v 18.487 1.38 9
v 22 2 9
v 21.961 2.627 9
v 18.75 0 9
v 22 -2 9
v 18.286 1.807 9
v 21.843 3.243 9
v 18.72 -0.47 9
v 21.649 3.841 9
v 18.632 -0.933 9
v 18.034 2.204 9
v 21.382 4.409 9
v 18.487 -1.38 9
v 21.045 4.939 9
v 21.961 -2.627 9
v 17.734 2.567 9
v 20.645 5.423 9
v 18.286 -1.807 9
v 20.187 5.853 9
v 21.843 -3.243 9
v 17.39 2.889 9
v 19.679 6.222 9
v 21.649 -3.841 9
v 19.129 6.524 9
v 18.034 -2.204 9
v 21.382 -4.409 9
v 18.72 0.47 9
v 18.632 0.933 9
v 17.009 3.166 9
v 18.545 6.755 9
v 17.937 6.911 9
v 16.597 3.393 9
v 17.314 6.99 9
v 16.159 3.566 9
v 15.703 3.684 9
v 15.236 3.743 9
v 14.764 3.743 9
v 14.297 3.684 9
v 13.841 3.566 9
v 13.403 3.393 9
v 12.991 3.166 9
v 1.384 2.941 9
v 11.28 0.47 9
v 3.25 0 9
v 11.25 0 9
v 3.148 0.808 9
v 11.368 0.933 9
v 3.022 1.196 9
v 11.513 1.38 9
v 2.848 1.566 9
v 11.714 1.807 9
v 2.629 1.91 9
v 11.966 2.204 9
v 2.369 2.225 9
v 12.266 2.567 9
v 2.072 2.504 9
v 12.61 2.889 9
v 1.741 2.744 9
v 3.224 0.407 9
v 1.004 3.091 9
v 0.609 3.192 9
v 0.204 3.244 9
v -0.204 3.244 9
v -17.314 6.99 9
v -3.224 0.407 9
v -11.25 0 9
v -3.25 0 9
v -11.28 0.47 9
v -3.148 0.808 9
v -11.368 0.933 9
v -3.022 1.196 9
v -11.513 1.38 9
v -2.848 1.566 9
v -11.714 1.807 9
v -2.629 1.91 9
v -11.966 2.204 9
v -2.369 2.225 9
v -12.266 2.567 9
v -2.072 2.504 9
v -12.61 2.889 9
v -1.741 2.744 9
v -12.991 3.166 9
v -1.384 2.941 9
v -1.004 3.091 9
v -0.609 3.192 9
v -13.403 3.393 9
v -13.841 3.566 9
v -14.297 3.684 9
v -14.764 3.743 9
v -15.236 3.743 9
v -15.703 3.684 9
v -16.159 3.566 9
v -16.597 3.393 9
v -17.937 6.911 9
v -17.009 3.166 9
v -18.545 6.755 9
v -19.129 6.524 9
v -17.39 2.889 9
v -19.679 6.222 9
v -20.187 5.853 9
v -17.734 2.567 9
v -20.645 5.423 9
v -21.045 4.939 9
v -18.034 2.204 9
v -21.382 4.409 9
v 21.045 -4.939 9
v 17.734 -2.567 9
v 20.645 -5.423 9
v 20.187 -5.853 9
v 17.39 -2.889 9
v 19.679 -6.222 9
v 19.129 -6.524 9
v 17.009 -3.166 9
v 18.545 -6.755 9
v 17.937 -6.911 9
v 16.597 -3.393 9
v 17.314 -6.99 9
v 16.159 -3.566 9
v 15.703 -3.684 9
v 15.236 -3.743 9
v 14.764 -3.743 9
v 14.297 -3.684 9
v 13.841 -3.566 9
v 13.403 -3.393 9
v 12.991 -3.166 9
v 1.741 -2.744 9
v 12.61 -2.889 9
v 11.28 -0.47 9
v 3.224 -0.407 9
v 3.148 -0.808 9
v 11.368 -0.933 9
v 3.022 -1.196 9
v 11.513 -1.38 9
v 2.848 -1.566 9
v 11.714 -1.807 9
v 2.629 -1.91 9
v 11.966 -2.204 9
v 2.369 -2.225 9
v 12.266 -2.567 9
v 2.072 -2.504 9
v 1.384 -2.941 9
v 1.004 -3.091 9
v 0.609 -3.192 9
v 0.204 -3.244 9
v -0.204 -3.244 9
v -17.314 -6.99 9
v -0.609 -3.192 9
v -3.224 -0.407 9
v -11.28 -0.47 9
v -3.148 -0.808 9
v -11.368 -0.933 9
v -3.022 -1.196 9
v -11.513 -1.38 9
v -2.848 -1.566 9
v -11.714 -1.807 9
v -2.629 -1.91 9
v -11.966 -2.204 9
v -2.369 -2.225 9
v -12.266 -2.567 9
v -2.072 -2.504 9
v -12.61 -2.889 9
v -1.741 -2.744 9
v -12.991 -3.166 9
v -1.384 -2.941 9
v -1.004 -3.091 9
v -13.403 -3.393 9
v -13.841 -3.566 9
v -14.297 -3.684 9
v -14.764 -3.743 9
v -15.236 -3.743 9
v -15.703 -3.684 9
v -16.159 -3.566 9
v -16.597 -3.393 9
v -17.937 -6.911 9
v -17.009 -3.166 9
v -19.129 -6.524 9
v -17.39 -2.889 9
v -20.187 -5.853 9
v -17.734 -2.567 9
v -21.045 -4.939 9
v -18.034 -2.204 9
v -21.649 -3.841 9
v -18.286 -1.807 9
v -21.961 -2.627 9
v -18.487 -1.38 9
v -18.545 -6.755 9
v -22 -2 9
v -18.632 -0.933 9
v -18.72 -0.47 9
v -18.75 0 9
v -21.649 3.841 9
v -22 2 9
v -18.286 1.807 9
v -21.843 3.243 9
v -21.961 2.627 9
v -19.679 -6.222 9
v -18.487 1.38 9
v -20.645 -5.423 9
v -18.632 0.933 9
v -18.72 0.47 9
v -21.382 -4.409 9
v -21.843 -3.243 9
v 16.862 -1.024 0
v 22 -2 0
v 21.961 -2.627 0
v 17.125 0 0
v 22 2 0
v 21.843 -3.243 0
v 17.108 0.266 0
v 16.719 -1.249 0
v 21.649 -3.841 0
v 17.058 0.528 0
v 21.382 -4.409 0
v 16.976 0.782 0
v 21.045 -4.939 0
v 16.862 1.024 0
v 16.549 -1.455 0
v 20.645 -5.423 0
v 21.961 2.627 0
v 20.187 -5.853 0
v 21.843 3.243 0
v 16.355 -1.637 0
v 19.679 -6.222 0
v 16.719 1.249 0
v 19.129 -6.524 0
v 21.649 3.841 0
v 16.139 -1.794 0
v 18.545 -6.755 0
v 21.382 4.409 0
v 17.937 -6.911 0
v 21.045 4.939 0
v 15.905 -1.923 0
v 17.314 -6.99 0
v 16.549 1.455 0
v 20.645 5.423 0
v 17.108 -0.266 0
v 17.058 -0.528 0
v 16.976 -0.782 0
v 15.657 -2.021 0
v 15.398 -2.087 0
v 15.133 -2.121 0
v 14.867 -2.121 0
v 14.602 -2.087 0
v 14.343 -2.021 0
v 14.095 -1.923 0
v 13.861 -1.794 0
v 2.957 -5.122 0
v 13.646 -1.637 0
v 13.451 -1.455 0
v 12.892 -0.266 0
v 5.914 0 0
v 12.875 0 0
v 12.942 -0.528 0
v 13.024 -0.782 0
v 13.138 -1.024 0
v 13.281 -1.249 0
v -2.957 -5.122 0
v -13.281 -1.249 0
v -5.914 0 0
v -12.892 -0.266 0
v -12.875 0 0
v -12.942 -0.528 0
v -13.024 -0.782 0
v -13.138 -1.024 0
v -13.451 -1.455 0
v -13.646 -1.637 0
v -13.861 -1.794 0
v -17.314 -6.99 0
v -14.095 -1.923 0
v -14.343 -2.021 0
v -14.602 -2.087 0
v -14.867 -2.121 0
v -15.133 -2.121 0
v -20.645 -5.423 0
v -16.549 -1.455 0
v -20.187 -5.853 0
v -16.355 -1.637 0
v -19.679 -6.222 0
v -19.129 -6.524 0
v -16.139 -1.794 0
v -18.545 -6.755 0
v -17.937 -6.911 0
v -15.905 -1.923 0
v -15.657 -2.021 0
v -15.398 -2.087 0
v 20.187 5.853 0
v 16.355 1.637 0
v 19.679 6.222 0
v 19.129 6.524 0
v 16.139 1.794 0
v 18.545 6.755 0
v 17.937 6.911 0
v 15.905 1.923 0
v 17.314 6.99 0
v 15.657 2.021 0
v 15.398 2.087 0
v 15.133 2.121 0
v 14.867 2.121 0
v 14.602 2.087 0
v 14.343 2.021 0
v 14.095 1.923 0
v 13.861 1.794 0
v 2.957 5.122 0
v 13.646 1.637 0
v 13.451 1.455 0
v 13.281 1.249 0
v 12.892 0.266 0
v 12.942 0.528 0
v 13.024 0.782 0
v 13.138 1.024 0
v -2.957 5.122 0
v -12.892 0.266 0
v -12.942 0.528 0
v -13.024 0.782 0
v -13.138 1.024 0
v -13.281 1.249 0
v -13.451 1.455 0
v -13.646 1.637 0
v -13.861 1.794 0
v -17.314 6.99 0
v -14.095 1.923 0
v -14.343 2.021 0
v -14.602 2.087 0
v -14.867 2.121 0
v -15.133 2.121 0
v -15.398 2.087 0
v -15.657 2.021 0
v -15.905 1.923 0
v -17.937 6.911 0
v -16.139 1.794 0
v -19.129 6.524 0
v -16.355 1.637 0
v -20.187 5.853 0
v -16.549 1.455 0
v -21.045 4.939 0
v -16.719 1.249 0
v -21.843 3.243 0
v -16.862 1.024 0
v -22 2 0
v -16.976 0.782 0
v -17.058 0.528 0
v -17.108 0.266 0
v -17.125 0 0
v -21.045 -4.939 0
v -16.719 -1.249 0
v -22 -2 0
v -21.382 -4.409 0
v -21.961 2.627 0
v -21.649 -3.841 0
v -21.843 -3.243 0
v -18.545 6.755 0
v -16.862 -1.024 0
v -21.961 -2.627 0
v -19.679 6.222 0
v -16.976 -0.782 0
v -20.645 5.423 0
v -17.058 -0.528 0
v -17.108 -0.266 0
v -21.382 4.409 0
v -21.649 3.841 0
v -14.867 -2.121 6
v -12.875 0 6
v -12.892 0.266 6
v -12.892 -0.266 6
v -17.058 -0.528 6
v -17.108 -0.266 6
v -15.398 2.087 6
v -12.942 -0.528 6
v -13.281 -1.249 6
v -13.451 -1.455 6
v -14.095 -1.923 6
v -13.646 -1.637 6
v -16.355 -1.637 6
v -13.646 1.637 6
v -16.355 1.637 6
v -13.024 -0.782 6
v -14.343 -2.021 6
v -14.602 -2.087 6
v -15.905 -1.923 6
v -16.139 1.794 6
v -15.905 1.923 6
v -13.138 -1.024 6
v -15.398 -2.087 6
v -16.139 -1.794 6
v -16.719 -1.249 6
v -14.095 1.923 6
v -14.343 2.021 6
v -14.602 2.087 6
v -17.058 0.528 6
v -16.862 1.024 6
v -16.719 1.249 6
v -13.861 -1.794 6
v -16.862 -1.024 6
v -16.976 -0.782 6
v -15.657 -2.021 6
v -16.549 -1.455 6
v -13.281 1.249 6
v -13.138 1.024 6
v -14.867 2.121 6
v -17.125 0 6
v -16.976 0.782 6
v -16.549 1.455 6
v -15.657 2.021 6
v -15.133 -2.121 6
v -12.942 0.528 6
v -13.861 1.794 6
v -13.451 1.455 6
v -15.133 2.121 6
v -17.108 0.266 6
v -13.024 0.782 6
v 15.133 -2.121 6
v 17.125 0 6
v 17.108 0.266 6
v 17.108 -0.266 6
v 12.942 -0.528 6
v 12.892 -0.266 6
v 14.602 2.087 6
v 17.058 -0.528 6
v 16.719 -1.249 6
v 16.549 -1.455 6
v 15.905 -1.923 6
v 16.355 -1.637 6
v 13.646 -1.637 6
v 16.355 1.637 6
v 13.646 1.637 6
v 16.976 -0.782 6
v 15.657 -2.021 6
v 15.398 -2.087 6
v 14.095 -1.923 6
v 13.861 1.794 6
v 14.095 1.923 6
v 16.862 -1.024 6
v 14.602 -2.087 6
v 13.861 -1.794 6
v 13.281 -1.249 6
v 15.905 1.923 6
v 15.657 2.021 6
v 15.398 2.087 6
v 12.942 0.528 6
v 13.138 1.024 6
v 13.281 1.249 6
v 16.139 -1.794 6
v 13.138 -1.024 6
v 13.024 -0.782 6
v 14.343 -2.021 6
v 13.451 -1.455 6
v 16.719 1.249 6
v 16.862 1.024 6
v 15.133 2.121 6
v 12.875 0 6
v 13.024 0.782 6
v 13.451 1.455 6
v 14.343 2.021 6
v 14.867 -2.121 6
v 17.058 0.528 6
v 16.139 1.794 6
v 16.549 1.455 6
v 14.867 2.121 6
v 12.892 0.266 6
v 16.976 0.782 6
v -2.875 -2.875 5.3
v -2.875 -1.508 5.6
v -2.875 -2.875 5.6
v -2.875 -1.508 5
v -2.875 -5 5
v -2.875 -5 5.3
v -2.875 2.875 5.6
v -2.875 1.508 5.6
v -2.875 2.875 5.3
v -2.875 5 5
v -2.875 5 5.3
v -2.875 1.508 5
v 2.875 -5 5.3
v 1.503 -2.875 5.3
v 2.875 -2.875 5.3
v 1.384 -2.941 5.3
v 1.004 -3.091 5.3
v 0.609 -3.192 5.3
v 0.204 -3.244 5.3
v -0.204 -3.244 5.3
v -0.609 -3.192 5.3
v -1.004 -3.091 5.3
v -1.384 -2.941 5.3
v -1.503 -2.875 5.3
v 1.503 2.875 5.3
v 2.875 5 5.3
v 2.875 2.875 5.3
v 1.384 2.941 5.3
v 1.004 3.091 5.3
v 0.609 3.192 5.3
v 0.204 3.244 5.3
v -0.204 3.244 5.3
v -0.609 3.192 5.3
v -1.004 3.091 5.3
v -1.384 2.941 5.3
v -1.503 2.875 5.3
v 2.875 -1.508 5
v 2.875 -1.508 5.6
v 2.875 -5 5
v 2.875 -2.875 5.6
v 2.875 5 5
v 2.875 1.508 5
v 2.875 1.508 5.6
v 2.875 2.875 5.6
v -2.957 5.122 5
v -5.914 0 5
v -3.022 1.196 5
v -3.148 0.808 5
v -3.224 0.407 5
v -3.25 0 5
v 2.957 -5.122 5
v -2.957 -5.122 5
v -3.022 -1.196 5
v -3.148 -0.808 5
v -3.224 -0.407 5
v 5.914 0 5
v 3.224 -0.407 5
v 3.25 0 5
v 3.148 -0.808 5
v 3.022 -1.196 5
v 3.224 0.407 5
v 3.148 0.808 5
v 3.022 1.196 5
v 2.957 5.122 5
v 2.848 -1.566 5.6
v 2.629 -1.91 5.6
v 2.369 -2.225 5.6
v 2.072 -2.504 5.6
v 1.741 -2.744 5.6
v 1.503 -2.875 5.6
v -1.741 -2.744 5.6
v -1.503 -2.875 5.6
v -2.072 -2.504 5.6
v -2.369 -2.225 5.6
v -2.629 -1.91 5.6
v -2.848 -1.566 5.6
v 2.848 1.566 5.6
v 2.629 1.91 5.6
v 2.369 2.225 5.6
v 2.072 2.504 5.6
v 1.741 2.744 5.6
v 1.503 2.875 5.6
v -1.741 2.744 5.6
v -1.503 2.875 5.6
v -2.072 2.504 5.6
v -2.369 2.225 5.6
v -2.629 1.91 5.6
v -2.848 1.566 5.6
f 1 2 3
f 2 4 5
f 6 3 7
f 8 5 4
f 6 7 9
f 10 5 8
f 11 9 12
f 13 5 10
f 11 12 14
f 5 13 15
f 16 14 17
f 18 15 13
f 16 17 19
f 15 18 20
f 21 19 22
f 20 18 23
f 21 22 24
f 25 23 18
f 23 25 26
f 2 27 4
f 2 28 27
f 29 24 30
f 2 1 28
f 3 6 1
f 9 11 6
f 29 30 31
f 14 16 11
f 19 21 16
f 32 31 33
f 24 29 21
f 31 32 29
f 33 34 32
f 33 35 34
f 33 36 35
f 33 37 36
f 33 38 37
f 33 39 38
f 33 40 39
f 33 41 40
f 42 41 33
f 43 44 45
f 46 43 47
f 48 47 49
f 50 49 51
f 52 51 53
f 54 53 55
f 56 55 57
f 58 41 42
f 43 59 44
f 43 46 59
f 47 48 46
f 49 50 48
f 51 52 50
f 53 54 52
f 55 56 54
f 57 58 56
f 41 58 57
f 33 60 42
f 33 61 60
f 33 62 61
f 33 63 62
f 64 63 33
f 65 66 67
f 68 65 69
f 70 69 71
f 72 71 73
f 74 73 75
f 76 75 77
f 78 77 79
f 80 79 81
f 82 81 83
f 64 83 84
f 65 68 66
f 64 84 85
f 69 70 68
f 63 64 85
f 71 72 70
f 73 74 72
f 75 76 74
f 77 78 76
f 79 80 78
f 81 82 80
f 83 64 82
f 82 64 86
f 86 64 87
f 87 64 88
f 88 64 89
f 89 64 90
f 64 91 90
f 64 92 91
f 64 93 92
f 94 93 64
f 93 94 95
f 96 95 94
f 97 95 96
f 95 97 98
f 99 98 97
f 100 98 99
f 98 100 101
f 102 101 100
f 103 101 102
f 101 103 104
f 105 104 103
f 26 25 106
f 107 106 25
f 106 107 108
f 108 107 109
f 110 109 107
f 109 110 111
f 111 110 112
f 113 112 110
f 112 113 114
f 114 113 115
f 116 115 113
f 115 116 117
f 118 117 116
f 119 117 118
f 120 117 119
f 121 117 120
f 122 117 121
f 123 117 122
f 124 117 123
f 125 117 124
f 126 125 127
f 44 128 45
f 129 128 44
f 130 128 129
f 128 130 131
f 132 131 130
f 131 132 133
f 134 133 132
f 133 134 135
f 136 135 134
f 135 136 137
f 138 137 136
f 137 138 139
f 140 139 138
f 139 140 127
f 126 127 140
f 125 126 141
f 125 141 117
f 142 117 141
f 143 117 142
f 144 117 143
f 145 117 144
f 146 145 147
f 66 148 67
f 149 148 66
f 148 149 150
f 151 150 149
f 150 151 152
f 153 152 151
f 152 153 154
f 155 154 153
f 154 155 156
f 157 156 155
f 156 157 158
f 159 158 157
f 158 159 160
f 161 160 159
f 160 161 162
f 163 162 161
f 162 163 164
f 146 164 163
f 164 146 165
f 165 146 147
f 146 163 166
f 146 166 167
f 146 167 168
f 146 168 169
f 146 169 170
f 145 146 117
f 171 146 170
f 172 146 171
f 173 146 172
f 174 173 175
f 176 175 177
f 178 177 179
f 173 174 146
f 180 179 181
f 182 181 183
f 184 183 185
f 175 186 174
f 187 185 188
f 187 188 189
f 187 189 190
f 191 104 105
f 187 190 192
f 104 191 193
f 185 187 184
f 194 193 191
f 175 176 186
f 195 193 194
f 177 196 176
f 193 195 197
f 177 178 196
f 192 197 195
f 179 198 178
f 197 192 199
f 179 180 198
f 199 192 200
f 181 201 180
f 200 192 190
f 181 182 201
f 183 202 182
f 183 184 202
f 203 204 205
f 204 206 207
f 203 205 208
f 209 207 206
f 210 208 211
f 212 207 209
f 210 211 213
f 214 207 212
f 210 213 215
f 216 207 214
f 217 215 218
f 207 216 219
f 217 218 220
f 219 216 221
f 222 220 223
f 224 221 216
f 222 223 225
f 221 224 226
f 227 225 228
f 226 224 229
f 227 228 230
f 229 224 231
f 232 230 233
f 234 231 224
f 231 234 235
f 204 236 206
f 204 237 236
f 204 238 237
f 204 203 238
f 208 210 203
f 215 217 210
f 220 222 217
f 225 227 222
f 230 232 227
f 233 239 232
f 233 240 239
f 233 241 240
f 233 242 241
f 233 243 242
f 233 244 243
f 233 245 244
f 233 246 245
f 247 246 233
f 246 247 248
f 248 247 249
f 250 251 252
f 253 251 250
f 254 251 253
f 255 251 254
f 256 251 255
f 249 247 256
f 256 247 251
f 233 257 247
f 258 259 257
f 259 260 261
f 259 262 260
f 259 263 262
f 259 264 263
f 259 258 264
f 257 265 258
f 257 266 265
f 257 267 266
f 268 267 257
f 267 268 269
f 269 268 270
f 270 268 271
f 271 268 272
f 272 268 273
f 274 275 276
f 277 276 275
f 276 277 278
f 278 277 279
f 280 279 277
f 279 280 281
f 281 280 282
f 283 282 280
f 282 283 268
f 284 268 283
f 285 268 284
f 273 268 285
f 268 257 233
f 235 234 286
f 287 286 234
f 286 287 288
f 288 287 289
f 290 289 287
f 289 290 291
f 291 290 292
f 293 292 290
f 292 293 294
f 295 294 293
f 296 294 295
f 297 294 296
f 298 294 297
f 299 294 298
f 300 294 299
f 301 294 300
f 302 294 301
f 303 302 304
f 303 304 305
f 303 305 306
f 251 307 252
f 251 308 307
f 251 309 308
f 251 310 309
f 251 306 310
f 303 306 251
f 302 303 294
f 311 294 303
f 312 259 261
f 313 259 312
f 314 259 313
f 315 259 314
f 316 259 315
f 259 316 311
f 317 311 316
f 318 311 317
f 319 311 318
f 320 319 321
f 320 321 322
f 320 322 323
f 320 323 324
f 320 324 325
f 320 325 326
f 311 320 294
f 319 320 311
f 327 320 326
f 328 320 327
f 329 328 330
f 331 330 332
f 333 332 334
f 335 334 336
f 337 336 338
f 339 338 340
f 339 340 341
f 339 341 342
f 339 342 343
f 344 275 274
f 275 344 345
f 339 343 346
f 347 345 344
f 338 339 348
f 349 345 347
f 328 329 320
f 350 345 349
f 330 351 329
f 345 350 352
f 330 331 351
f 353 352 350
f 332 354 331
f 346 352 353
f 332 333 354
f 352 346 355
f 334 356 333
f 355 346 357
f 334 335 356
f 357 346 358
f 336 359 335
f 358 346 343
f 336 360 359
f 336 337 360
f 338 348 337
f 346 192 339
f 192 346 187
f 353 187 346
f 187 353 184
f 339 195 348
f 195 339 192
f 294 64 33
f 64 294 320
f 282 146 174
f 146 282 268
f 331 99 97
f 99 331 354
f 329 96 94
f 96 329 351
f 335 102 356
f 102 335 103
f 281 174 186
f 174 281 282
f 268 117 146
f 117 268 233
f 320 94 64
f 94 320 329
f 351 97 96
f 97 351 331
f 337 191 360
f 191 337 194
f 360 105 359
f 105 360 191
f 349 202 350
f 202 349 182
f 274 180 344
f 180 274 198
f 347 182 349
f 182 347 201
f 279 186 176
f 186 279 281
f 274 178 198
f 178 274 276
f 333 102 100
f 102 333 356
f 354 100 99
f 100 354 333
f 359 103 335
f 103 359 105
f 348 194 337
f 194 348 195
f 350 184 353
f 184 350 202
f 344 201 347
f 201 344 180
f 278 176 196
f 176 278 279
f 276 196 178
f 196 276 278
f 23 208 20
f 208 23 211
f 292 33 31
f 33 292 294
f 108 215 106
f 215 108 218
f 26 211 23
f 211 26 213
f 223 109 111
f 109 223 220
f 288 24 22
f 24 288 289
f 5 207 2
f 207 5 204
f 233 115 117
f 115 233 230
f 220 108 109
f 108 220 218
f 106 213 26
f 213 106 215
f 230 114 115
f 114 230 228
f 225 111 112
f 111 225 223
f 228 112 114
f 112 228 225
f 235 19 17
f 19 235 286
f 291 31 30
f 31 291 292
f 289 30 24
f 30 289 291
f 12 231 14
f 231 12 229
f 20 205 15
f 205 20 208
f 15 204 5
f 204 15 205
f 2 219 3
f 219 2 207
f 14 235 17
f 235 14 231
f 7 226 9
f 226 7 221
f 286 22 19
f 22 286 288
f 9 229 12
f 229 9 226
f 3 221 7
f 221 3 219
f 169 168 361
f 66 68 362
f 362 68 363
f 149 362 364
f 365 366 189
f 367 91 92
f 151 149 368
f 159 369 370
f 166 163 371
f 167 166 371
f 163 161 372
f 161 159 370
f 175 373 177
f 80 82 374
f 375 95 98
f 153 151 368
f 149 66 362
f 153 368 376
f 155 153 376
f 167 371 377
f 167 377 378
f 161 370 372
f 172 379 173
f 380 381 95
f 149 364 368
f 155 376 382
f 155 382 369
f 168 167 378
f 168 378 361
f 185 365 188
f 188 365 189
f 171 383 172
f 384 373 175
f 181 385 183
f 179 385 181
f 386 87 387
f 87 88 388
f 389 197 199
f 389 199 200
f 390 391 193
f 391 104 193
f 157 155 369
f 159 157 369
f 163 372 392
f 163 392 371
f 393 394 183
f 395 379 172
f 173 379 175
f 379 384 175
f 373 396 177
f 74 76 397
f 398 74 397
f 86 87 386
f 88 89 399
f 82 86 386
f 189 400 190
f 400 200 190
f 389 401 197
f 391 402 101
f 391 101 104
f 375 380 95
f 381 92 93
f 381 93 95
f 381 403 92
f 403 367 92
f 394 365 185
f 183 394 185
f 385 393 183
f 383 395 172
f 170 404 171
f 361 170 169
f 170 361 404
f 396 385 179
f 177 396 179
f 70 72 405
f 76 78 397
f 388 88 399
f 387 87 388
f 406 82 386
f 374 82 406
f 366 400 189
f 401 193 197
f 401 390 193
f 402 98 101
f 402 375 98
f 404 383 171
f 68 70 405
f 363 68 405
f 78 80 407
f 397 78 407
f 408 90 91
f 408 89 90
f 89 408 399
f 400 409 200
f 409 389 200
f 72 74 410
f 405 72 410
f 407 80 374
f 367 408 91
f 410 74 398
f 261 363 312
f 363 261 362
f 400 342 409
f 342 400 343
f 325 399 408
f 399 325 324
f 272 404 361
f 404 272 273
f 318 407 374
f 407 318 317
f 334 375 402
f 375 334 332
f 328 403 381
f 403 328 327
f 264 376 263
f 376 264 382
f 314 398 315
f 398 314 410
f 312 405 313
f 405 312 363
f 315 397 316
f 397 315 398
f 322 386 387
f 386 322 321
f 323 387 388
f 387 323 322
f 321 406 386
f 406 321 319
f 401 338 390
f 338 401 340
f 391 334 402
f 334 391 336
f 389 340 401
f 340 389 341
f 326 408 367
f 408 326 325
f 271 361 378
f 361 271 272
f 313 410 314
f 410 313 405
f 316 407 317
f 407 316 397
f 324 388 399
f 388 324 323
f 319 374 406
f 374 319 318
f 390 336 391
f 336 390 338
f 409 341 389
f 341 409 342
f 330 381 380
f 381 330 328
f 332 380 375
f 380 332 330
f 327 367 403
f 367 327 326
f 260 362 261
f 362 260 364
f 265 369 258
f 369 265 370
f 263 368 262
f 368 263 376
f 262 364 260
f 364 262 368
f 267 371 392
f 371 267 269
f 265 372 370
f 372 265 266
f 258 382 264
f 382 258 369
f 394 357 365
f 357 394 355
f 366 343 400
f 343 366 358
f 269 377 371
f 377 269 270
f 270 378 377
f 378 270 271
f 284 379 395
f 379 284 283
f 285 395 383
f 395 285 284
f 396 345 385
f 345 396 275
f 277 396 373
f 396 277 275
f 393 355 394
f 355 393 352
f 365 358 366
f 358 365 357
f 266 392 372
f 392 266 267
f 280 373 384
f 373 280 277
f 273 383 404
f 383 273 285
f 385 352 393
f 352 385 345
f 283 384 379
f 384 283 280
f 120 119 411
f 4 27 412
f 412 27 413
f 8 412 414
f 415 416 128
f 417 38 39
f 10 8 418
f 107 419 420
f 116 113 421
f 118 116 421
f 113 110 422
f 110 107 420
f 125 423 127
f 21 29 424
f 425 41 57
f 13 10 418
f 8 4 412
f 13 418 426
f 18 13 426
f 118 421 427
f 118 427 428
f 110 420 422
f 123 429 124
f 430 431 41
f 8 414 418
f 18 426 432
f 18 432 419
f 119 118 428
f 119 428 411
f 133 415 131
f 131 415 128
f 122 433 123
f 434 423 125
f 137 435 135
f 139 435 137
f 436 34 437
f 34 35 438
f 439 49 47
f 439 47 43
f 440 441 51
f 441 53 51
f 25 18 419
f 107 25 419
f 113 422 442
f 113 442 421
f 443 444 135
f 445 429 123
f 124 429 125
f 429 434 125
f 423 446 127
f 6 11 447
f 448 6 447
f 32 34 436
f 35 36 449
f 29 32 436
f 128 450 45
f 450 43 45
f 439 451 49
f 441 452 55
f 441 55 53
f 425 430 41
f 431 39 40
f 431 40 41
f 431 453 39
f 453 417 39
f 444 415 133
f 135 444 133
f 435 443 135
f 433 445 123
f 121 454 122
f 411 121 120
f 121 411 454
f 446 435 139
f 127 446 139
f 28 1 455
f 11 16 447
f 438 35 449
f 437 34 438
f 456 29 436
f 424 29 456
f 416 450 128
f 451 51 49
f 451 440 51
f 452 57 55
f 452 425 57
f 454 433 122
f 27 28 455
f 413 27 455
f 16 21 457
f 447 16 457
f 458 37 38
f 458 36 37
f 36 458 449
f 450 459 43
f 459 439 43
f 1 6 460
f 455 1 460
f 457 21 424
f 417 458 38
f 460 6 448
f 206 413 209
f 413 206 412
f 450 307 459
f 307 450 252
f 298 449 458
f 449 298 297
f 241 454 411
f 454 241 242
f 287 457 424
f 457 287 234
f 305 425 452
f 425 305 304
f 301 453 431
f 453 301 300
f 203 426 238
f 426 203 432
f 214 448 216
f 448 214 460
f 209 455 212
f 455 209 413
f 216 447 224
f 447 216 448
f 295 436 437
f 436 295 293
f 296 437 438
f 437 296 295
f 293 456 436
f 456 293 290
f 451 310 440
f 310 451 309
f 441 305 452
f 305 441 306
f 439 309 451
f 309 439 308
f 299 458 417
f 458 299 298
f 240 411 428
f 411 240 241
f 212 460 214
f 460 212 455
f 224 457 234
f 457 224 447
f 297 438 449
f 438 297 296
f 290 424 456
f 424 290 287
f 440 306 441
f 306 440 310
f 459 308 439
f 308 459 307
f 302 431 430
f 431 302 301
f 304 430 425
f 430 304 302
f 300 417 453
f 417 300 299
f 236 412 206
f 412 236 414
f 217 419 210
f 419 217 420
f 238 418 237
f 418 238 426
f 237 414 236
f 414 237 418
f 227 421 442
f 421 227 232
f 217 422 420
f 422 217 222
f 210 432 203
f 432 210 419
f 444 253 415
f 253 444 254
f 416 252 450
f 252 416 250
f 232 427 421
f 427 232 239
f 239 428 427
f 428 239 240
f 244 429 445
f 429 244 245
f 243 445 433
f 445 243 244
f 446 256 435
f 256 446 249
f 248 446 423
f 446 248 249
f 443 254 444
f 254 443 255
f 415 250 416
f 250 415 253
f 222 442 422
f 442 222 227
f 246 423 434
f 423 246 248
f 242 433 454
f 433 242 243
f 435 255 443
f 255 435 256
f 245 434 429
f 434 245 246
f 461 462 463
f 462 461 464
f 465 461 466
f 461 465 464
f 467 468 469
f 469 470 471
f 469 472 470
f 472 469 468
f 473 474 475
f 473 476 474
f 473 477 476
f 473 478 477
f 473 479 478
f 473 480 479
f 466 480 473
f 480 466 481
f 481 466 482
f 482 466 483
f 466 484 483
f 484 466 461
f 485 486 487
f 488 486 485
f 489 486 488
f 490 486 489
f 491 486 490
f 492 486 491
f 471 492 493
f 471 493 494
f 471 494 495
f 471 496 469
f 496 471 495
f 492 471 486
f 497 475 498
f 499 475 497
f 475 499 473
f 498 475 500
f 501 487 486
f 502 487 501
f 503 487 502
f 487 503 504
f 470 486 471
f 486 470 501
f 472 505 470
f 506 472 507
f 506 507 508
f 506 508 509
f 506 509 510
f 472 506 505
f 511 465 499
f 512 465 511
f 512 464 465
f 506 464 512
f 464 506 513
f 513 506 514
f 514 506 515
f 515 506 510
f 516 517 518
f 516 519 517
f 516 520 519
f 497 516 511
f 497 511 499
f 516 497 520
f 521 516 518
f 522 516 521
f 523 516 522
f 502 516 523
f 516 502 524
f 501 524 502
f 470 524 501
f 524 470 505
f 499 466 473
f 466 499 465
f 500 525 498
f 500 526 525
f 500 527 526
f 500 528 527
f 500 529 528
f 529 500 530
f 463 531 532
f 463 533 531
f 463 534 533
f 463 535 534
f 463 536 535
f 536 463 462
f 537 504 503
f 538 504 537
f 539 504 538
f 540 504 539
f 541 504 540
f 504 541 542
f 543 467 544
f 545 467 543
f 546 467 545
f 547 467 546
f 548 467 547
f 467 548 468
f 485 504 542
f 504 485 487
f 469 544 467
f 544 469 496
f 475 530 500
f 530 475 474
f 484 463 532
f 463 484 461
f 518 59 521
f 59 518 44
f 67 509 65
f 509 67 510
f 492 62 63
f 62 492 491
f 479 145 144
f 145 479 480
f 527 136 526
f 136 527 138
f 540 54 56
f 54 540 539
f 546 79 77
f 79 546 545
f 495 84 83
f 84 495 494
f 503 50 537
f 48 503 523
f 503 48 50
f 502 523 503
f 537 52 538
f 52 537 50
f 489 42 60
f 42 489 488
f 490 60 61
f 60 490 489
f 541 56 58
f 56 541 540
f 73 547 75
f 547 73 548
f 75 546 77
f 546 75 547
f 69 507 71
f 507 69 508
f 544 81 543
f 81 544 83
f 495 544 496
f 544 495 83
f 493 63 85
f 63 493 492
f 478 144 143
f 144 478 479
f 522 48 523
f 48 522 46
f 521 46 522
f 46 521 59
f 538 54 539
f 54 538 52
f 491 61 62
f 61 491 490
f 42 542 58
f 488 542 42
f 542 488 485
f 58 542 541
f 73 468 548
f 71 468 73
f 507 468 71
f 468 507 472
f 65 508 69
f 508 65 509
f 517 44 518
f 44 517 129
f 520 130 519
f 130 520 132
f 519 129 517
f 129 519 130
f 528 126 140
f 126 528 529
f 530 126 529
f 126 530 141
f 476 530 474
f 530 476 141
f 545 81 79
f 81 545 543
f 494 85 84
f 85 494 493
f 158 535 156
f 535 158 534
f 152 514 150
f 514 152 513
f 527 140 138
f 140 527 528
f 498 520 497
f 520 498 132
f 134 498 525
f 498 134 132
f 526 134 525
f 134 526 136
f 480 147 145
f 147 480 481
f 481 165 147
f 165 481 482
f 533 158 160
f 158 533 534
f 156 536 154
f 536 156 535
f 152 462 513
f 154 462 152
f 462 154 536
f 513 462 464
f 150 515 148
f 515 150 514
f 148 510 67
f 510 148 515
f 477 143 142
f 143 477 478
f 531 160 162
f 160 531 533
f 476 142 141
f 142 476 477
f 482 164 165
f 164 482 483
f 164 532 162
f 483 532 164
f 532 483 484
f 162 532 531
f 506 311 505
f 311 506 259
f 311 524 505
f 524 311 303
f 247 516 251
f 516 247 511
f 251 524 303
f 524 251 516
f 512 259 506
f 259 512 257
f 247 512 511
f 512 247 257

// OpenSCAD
$fn = 50;


difference() {
	union() {
		cylinder(h = 9, r = 7.0000000000);
		translate(v = [-7.5000000000, 0.0000000000, 0]) {
			hull() {
				translate(v = [-9.5000000000, 2.0000000000, 0]) {
					cylinder(h = 9, r = 5);
				}
				translate(v = [9.5000000000, 2.0000000000, 0]) {
					cylinder(h = 9, r = 5);
				}
				translate(v = [-9.5000000000, -2.0000000000, 0]) {
					cylinder(h = 9, r = 5);
				}
				translate(v = [9.5000000000, -2.0000000000, 0]) {
					cylinder(h = 9, r = 5);
				}
			}
		}
		translate(v = [-7.5000000000, 0.0000000000, 0]) {
			hull() {
				translate(v = [-9.5000000000, 2.0000000000, 0]) {
					cylinder(h = 9, r = 5);
				}
				translate(v = [9.5000000000, 2.0000000000, 0]) {
					cylinder(h = 9, r = 5);
				}
				translate(v = [-9.5000000000, -2.0000000000, 0]) {
					cylinder(h = 9, r = 5);
				}
				translate(v = [9.5000000000, -2.0000000000, 0]) {
					cylinder(h = 9, r = 5);
				}
			}
		}
		translate(v = [7.5000000000, 0.0000000000, 0]) {
			hull() {
				translate(v = [-9.5000000000, 2.0000000000, 0]) {
					cylinder(h = 9, r = 5);
				}
				translate(v = [9.5000000000, 2.0000000000, 0]) {
					cylinder(h = 9, r = 5);
				}
				translate(v = [-9.5000000000, -2.0000000000, 0]) {
					cylinder(h = 9, r = 5);
				}
				translate(v = [9.5000000000, -2.0000000000, 0]) {
					cylinder(h = 9, r = 5);
				}
			}
		}
		translate(v = [7.5000000000, 0.0000000000, 0]) {
			hull() {
				translate(v = [-9.5000000000, 2.0000000000, 0]) {
					cylinder(h = 9, r = 5);
				}
				translate(v = [9.5000000000, 2.0000000000, 0]) {
					cylinder(h = 9, r = 5);
				}
				translate(v = [-9.5000000000, -2.0000000000, 0]) {
					cylinder(h = 9, r = 5);
				}
				translate(v = [9.5000000000, -2.0000000000, 0]) {
					cylinder(h = 9, r = 5);
				}
			}
		}
	}
	union() {
		translate(v = [-15.0000000000, 0.0000000000, 9]) {
			rotate(a = [0, 0, 0]) {
				difference() {
					union() {
						#translate(v = [0, 0, -9.0000000000]) {
							cylinder(h = 9, r = 2.0000000000);
						}
						#translate(v = [0, 0, -3]) {
							cylinder(h = 3, r1 = 2.1250000000, r2 = 3.7500000000);
						}
						#translate(v = [0, 0, -9.0000000000]) {
							cylinder(h = 9, r = 2.1250000000);
						}
						#translate(v = [0, 0, -9.0000000000]) {
							cylinder(h = 9, r = 2.0000000000);
						}
					}
					union();
				}
			}
		}
		translate(v = [-15.0000000000, 0.0000000000, 9]) {
			rotate(a = [0, 0, 0]) {
				difference() {
					union() {
						#translate(v = [0, 0, -9.0000000000]) {
							cylinder(h = 9, r = 2.0000000000);
						}
						#translate(v = [0, 0, -3]) {
							cylinder(h = 3, r1 = 2.1250000000, r2 = 3.7500000000);
						}
						#translate(v = [0, 0, -9.0000000000]) {
							cylinder(h = 9, r = 2.1250000000);
						}
						#translate(v = [0, 0, -9.0000000000]) {
							cylinder(h = 9, r = 2.0000000000);
						}
					}
					union();
				}
			}
		}
		translate(v = [15.0000000000, 0.0000000000, 9]) {
			rotate(a = [0, 0, 0]) {
				difference() {
					union() {
						#translate(v = [0, 0, -9.0000000000]) {
							cylinder(h = 9, r = 2.0000000000);
						}
						#translate(v = [0, 0, -3]) {
							cylinder(h = 3, r1 = 2.1250000000, r2 = 3.7500000000);
						}
						#translate(v = [0, 0, -9.0000000000]) {
							cylinder(h = 9, r = 2.1250000000);
						}
						#translate(v = [0, 0, -9.0000000000]) {
							cylinder(h = 9, r = 2.0000000000);
						}
					}
					union();
				}
			}
		}
		translate(v = [15.0000000000, 0.0000000000, 9]) {
			rotate(a = [0, 0, 0]) {
				difference() {
					union() {
						#translate(v = [0, 0, -9.0000000000]) {
							cylinder(h = 9, r = 2.0000000000);
						}
						#translate(v = [0, 0, -3]) {
							cylinder(h = 3, r1 = 2.1250000000, r2 = 3.7500000000);
						}
						#translate(v = [0, 0, -9.0000000000]) {
							cylinder(h = 9, r = 2.1250000000);
						}
						#translate(v = [0, 0, -9.0000000000]) {
							cylinder(h = 9, r = 2.0000000000);
						}
					}
					union();
				}
			}
		}
		translate(v = [0.0000000000, 0.0000000000, 0]) {
			rotate(a = [0, 0, 0]) {
				difference() {
					union() {
						#translate(v = [-2.8750000000, -5.0000000000, -0.3000000000]) {
							cube(size = [5.7500000000, 10, 0.3000000000]);
						}
						#translate(v = [-2.8750000000, -2.8750000000, -0.6000000000]) {
							cube(size = [5.7500000000, 5.7500000000, 0.3000000000]);
						}
						#translate(v = [-2.8750000000, -5.0000000000, 5]) {
							cube(size = [5.7500000000, 10, 0.3000000000]);
						}
						#translate(v = [-2.8750000000, -2.8750000000, 5.3000000000]) {
							cube(size = [5.7500000000, 5.7500000000, 0.3000000000]);
						}
						#translate(v = [0, 0, -100.0000000000]) {
							cylinder(h = 200, r = 3.2500000000);
						}
						#linear_extrude(height = 5) {
							polygon(points = [[5.9142500000, 0.0000000000], [2.9571250000, 5.1218907443], [-2.9571250000, 5.1218907443], [-5.9142500000, 0.0000000000], [-2.9571250000, -5.1218907443], [2.9571250000, -5.1218907443]]);
						}
						#translate(v = [-2.8750000000, -5.0000000000, -0.3000000000]) {
							cube(size = [5.7500000000, 10, 0.3000000000]);
						}
						#translate(v = [-2.8750000000, -2.8750000000, -0.6000000000]) {
							cube(size = [5.7500000000, 5.7500000000, 0.3000000000]);
						}
						#translate(v = [-2.8750000000, -5.0000000000, 5]) {
							cube(size = [5.7500000000, 10, 0.3000000000]);
						}
						#translate(v = [-2.8750000000, -2.8750000000, 5.3000000000]) {
							cube(size = [5.7500000000, 5.7500000000, 0.3000000000]);
						}
						#translate(v = [0, 0, -100.0000000000]) {
							cylinder(h = 200, r = 3.2500000000);
						}
						#translate(v = [-2.8750000000, -5.0000000000, -0.3000000000]) {
							cube(size = [5.7500000000, 10, 0.3000000000]);
						}
						#translate(v = [-2.8750000000, -2.8750000000, -0.6000000000]) {
							cube(size = [5.7500000000, 5.7500000000, 0.3000000000]);
						}
						#translate(v = [-2.8750000000, -5.0000000000, 5]) {
							cube(size = [5.7500000000, 10, 0.3000000000]);
						}
						#translate(v = [-2.8750000000, -2.8750000000, 5.3000000000]) {
							cube(size = [5.7500000000, 5.7500000000, 0.3000000000]);
						}
						#translate(v = [0, 0, -100.0000000000]) {
							cylinder(h = 200, r = 3.2500000000);
						}
					}
					union();
				}
			}
		}
		translate(v = [0, 0, -100]) {
			cylinder(h = 200, r = 3.2500000000);
		}
		translate(v = [0, 0, -100]) {
			cylinder(h = 200, r = 1.8000000000);
		}
	}
}
